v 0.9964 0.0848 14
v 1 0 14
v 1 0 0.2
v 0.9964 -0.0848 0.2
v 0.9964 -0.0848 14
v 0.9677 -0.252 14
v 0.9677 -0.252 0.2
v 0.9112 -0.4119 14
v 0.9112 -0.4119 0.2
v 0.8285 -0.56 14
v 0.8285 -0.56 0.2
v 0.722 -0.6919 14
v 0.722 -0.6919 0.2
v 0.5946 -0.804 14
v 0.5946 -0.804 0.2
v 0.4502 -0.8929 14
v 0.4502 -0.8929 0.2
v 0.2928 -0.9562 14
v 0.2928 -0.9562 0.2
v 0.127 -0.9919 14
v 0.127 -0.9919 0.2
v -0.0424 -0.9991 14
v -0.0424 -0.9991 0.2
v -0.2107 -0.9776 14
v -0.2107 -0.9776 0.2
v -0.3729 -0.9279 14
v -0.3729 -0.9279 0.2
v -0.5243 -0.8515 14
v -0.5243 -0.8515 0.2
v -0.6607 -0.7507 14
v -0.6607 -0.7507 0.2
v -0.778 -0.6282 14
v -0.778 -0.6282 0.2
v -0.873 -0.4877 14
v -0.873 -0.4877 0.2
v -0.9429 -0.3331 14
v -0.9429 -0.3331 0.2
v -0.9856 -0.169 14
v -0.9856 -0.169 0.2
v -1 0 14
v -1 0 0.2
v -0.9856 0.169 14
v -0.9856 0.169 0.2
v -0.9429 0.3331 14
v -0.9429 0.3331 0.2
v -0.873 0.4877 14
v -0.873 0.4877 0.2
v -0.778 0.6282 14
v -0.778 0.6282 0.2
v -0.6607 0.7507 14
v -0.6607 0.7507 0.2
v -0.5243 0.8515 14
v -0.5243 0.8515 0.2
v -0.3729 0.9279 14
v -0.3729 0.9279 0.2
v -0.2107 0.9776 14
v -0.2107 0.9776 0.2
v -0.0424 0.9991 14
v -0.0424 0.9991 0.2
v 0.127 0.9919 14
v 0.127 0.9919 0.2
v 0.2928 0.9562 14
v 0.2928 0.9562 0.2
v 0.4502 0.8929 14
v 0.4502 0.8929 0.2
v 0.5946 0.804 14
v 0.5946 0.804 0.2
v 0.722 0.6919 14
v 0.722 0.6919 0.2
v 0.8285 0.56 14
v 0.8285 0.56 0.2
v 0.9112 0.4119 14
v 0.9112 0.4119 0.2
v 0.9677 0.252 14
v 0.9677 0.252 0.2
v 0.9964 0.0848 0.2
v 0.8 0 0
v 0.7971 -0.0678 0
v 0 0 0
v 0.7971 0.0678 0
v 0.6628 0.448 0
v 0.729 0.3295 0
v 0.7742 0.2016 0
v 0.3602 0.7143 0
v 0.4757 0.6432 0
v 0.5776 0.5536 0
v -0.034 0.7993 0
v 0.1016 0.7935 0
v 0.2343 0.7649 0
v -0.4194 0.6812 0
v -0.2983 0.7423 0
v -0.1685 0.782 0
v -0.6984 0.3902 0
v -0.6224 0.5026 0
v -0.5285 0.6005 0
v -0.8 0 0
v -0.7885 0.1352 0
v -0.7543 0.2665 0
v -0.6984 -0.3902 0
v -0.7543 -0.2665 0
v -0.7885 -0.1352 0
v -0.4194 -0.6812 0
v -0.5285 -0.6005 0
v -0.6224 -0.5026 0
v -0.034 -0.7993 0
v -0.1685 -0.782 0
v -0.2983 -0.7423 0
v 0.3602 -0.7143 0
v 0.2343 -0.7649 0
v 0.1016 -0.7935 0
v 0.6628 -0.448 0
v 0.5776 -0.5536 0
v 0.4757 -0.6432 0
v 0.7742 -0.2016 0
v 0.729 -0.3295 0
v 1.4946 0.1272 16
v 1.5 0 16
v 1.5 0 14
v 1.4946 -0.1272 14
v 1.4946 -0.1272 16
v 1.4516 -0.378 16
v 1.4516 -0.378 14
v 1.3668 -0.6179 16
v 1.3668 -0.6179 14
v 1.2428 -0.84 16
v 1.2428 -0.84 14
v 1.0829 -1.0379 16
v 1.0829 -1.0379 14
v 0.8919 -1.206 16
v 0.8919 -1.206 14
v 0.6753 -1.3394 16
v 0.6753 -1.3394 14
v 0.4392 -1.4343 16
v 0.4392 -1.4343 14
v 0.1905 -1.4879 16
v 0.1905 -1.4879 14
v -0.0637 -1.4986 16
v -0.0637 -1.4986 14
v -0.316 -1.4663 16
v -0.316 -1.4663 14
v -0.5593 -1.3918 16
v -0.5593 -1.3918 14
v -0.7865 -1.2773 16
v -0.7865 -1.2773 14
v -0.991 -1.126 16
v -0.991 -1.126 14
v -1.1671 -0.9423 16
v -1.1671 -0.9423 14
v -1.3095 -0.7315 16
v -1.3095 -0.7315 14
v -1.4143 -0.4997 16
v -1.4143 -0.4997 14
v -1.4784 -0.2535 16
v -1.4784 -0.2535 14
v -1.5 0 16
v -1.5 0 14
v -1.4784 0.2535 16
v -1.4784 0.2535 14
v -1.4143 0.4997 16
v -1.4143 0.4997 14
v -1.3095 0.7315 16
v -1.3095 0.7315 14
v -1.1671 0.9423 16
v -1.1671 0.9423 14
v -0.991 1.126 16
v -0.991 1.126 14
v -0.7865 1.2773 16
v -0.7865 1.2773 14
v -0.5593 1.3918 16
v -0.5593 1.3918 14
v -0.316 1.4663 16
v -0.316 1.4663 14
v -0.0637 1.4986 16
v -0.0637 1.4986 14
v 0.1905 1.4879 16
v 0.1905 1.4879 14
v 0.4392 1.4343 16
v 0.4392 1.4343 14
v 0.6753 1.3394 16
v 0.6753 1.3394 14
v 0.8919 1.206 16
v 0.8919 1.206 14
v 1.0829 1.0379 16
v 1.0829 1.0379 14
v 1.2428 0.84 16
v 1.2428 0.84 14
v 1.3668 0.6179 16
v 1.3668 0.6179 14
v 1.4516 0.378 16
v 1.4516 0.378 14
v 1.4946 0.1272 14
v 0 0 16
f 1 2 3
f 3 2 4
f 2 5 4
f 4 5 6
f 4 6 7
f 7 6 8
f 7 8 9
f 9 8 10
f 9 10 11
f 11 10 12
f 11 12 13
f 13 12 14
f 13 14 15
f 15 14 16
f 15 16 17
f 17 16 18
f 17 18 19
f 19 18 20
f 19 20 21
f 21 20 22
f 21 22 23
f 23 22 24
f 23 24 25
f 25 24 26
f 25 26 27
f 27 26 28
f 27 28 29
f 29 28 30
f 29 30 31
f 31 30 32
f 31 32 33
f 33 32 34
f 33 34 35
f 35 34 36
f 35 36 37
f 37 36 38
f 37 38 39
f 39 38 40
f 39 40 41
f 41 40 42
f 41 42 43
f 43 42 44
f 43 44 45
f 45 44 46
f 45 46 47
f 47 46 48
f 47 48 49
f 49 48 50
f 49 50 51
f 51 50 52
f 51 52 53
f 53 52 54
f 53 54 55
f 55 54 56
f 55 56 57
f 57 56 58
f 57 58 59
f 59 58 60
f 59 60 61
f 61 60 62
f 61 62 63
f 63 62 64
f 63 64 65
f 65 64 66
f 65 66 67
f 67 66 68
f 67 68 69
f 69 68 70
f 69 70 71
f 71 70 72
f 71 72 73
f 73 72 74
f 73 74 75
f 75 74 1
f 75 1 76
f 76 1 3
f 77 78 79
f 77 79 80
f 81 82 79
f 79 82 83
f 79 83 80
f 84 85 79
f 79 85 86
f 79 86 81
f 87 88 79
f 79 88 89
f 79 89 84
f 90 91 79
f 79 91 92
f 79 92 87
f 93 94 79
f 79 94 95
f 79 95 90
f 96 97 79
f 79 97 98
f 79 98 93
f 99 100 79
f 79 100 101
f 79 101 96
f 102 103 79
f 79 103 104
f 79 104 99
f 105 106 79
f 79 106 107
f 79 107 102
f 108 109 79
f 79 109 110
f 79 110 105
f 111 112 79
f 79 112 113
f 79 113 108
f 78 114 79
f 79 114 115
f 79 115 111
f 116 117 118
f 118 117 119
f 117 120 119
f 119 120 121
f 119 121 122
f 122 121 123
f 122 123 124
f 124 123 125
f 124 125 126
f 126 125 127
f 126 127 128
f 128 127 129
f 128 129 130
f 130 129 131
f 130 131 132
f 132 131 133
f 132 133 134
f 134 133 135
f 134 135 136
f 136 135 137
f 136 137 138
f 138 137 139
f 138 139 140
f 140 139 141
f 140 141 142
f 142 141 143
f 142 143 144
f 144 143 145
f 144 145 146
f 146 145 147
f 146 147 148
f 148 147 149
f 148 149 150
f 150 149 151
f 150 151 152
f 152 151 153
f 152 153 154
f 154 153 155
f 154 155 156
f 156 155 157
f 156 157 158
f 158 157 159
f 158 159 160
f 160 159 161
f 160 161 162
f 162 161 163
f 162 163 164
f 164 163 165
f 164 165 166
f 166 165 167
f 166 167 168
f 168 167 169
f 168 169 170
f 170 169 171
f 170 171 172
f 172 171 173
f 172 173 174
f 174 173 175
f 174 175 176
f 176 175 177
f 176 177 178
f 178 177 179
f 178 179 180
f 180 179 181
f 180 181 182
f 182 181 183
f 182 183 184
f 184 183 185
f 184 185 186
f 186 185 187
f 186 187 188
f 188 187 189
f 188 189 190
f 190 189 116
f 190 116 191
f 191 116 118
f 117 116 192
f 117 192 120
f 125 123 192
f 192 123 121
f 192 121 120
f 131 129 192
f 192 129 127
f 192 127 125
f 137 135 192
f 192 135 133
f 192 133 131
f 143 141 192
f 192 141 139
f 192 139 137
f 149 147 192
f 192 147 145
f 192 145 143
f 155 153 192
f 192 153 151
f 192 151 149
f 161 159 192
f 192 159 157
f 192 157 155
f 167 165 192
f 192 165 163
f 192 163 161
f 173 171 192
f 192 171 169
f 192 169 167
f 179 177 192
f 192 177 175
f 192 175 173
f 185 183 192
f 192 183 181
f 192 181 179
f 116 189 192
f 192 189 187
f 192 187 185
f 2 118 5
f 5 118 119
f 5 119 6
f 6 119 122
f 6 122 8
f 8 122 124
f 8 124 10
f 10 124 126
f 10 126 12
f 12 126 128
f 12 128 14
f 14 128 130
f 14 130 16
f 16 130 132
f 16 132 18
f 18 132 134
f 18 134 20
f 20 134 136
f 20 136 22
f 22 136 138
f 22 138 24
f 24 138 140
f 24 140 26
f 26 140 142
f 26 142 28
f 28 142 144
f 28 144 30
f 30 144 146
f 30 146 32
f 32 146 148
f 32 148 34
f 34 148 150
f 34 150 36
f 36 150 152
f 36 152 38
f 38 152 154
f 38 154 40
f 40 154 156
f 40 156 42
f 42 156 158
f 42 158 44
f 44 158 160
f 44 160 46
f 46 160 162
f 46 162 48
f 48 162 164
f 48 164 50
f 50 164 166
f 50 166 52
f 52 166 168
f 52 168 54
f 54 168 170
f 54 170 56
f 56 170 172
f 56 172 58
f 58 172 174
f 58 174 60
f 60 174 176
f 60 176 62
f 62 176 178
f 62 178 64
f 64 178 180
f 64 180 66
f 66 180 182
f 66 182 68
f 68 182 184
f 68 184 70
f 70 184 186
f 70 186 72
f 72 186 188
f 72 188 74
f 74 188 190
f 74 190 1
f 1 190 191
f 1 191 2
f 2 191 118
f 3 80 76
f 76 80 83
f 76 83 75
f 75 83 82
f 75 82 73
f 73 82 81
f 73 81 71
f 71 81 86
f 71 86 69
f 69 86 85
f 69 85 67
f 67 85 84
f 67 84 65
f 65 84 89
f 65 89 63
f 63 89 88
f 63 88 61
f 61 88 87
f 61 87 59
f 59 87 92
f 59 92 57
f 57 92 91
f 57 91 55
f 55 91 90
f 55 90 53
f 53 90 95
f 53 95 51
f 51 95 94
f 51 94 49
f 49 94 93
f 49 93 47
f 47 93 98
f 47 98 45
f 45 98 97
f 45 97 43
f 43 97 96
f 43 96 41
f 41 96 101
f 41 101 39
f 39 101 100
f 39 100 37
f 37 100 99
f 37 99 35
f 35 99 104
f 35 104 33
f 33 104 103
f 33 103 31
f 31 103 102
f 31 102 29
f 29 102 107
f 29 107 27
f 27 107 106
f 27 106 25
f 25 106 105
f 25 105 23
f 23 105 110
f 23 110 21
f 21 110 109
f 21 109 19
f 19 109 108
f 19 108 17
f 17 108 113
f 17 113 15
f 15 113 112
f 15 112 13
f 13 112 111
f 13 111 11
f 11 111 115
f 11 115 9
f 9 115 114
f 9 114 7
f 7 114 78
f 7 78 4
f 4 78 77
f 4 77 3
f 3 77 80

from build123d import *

# Parameters (mm, degrees)
CROQUIS1_R              = 1
SALIENTE_EXTRUIR1_DEPTH = 14
CROQUIS2_R              = 1.5
SALIENTE_EXTRUIR2_DEPTH = 2
CHAFL_N1_SIZE           = 0.2


with BuildPart() as part:
    # Croquis1 → Saliente-Extruir1 (new body)
    with BuildSketch(Plane.XY):
        Circle(CROQUIS1_R)
    extrude(amount=SALIENTE_EXTRUIR1_DEPTH)

    # Croquis2 → Saliente-Extruir2 (add)
    with BuildSketch(Plane.XY.offset(14)):
        Circle(CROQUIS2_R)
    extrude(amount=SALIENTE_EXTRUIR2_DEPTH)

    # Chaflán1
    chafl_n1_edges = [part.edges().sort_by_distance(p)[0] for p in [
        (-1, 0, 0),
    ]]
    chamfer(chafl_n1_edges, length=CHAFL_N1_SIZE)


solid = part.part
